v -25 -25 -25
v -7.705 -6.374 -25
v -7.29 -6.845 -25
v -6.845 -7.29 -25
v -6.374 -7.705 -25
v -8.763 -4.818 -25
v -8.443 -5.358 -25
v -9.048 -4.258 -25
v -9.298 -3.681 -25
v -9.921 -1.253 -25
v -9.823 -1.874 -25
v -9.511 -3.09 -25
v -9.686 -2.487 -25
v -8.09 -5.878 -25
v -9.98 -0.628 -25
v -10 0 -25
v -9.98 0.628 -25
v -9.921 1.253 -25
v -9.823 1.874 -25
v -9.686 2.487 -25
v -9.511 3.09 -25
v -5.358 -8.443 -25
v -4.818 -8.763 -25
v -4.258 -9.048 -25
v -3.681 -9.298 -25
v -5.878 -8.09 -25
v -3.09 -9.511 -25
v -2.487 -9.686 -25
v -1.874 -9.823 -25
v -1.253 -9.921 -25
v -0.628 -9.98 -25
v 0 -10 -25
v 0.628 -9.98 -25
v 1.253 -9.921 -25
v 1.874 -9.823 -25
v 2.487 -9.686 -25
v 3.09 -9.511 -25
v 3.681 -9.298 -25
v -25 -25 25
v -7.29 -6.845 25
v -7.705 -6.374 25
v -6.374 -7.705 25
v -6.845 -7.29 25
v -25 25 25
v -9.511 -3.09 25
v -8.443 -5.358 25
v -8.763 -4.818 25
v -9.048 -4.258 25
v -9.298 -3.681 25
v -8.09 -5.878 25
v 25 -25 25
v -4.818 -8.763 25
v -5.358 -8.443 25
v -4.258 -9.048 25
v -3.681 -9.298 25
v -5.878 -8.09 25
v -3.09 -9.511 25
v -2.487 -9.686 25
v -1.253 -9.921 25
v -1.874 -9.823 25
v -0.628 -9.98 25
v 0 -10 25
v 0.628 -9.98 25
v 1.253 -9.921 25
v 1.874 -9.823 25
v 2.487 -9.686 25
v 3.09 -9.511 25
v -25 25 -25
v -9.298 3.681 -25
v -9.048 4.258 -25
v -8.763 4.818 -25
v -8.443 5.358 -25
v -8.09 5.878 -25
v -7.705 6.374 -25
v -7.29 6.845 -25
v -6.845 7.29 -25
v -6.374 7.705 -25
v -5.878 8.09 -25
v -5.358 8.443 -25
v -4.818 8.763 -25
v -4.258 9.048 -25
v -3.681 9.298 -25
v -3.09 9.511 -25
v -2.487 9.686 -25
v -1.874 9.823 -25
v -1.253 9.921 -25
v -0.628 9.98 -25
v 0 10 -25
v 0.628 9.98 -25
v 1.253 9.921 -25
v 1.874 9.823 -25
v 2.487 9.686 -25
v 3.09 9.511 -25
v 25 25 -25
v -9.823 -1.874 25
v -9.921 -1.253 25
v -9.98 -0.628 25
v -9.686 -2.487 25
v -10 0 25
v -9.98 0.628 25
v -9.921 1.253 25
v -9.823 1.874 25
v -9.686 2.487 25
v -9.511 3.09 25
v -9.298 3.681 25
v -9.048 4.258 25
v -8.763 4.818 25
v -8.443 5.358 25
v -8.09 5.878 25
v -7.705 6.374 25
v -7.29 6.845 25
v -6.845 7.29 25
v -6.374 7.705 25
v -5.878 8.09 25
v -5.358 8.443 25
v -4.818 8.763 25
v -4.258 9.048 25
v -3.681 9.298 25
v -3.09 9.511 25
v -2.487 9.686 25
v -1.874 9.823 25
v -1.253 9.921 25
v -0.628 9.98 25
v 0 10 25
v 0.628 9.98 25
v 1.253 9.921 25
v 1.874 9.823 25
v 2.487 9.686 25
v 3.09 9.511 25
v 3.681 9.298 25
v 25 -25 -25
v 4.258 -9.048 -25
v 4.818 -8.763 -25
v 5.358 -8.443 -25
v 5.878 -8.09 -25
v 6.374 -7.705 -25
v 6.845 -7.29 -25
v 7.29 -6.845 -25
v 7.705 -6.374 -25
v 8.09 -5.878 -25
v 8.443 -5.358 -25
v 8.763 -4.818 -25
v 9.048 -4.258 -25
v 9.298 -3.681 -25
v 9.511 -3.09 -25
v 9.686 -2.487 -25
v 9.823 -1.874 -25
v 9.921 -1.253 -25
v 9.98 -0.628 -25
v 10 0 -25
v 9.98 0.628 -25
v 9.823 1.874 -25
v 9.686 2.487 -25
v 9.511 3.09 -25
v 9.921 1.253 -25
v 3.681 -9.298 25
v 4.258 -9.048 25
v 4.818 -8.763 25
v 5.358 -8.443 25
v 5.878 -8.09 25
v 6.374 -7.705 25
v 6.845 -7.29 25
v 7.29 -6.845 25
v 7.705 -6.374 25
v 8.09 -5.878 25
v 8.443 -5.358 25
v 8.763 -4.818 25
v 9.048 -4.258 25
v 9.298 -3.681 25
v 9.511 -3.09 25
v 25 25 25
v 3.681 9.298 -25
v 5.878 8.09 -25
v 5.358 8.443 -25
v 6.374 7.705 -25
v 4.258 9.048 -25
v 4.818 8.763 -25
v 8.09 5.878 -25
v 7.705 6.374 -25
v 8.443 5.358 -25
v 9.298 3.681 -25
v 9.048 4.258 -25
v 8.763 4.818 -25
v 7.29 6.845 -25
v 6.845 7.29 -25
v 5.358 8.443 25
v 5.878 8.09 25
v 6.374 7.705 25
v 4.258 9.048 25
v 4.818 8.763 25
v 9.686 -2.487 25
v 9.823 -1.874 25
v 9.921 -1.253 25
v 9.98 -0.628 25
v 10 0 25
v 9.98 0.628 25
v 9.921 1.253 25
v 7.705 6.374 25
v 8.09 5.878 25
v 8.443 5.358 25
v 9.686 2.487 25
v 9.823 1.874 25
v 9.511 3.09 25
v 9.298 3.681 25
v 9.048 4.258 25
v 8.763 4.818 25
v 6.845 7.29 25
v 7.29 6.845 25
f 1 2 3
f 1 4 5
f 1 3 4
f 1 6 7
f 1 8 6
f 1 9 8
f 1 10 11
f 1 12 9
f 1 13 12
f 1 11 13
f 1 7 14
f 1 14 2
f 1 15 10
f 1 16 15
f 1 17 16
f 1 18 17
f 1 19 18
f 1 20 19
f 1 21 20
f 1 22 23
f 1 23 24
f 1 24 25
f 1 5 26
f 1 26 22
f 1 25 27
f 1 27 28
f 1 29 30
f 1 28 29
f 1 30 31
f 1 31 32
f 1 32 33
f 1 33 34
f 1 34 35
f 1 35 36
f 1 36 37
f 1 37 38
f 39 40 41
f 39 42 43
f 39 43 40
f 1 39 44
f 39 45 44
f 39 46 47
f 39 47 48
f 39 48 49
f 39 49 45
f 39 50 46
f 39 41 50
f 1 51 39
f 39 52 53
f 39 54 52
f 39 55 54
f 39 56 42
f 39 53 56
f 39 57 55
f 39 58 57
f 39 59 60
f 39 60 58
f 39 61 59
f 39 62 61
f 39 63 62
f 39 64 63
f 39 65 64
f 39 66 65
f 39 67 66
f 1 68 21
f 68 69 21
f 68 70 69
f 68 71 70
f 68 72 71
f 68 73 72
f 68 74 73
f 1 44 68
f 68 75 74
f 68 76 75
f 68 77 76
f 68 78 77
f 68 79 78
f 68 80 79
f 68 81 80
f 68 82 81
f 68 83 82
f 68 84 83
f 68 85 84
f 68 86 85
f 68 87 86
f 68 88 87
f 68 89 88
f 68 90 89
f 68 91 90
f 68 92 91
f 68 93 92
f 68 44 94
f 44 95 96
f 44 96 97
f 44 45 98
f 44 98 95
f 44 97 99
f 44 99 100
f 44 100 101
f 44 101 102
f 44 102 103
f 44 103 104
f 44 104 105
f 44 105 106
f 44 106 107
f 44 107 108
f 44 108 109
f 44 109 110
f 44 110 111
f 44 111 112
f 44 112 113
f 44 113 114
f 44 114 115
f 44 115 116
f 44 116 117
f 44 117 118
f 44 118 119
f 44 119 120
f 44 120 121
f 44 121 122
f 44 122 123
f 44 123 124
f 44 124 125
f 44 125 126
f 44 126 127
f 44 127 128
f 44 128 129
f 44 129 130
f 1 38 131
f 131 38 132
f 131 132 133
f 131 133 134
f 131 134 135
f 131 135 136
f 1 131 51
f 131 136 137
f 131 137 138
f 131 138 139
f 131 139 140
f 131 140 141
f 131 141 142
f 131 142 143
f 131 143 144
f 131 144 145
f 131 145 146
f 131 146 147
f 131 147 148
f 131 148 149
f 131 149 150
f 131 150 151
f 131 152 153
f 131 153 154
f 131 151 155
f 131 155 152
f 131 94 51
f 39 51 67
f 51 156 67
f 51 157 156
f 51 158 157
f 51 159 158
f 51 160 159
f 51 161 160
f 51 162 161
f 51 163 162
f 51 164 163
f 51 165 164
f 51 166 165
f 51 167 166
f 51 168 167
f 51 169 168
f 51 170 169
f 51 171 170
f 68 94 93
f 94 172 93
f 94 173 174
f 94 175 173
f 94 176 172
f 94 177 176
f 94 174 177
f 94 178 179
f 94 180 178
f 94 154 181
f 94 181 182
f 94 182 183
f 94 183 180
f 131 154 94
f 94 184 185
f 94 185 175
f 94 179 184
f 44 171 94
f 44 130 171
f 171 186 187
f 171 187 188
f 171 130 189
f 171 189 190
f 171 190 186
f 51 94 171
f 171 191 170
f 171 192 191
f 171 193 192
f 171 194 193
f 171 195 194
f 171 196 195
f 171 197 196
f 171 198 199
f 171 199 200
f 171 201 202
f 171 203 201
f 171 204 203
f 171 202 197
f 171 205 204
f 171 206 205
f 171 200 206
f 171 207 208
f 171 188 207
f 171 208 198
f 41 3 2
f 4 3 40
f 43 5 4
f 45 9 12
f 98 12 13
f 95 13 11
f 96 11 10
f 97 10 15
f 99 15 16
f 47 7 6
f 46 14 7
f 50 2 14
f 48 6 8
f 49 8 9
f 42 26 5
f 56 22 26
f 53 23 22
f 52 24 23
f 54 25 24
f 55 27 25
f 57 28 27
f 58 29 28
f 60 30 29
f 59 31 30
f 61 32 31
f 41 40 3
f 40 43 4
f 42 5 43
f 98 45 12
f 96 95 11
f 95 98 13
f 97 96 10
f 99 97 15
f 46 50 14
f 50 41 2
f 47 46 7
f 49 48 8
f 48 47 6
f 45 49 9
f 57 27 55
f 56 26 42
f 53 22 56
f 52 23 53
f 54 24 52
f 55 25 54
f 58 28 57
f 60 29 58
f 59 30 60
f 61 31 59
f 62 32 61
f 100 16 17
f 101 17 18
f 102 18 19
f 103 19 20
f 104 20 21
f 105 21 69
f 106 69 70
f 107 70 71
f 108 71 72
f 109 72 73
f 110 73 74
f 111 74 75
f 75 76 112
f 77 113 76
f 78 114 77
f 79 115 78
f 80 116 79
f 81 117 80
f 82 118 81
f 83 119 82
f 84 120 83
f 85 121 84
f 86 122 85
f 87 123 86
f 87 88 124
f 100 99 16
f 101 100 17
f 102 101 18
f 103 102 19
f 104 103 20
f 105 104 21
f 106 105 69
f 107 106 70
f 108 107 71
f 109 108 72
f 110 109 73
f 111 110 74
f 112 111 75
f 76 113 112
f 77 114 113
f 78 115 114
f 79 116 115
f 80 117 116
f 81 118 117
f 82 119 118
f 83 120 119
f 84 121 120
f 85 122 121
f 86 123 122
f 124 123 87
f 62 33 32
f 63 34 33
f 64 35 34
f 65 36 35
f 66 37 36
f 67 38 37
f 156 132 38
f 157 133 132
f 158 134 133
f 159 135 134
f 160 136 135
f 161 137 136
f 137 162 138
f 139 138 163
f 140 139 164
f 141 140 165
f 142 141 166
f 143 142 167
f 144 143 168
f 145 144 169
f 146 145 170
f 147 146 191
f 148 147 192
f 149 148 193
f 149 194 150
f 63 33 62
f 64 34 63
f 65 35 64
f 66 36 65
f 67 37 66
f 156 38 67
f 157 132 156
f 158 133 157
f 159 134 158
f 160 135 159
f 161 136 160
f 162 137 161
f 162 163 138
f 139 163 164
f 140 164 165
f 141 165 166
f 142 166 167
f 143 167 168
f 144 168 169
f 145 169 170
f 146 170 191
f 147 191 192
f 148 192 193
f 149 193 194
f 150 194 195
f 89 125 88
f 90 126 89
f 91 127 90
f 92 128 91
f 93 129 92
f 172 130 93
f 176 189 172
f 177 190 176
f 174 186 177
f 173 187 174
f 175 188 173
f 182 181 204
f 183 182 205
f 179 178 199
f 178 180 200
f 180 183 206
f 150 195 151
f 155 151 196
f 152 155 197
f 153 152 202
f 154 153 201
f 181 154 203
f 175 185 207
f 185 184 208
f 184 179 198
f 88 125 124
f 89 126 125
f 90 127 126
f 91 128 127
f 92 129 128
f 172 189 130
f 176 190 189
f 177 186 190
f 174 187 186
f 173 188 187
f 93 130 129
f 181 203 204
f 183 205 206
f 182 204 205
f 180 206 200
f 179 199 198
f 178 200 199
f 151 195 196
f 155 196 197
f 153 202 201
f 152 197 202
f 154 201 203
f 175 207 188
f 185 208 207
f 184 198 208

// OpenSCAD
$fn = 100;

difference() {
    cube(50, center=true);
    cylinder(h=52, d=20, center=true);
}
